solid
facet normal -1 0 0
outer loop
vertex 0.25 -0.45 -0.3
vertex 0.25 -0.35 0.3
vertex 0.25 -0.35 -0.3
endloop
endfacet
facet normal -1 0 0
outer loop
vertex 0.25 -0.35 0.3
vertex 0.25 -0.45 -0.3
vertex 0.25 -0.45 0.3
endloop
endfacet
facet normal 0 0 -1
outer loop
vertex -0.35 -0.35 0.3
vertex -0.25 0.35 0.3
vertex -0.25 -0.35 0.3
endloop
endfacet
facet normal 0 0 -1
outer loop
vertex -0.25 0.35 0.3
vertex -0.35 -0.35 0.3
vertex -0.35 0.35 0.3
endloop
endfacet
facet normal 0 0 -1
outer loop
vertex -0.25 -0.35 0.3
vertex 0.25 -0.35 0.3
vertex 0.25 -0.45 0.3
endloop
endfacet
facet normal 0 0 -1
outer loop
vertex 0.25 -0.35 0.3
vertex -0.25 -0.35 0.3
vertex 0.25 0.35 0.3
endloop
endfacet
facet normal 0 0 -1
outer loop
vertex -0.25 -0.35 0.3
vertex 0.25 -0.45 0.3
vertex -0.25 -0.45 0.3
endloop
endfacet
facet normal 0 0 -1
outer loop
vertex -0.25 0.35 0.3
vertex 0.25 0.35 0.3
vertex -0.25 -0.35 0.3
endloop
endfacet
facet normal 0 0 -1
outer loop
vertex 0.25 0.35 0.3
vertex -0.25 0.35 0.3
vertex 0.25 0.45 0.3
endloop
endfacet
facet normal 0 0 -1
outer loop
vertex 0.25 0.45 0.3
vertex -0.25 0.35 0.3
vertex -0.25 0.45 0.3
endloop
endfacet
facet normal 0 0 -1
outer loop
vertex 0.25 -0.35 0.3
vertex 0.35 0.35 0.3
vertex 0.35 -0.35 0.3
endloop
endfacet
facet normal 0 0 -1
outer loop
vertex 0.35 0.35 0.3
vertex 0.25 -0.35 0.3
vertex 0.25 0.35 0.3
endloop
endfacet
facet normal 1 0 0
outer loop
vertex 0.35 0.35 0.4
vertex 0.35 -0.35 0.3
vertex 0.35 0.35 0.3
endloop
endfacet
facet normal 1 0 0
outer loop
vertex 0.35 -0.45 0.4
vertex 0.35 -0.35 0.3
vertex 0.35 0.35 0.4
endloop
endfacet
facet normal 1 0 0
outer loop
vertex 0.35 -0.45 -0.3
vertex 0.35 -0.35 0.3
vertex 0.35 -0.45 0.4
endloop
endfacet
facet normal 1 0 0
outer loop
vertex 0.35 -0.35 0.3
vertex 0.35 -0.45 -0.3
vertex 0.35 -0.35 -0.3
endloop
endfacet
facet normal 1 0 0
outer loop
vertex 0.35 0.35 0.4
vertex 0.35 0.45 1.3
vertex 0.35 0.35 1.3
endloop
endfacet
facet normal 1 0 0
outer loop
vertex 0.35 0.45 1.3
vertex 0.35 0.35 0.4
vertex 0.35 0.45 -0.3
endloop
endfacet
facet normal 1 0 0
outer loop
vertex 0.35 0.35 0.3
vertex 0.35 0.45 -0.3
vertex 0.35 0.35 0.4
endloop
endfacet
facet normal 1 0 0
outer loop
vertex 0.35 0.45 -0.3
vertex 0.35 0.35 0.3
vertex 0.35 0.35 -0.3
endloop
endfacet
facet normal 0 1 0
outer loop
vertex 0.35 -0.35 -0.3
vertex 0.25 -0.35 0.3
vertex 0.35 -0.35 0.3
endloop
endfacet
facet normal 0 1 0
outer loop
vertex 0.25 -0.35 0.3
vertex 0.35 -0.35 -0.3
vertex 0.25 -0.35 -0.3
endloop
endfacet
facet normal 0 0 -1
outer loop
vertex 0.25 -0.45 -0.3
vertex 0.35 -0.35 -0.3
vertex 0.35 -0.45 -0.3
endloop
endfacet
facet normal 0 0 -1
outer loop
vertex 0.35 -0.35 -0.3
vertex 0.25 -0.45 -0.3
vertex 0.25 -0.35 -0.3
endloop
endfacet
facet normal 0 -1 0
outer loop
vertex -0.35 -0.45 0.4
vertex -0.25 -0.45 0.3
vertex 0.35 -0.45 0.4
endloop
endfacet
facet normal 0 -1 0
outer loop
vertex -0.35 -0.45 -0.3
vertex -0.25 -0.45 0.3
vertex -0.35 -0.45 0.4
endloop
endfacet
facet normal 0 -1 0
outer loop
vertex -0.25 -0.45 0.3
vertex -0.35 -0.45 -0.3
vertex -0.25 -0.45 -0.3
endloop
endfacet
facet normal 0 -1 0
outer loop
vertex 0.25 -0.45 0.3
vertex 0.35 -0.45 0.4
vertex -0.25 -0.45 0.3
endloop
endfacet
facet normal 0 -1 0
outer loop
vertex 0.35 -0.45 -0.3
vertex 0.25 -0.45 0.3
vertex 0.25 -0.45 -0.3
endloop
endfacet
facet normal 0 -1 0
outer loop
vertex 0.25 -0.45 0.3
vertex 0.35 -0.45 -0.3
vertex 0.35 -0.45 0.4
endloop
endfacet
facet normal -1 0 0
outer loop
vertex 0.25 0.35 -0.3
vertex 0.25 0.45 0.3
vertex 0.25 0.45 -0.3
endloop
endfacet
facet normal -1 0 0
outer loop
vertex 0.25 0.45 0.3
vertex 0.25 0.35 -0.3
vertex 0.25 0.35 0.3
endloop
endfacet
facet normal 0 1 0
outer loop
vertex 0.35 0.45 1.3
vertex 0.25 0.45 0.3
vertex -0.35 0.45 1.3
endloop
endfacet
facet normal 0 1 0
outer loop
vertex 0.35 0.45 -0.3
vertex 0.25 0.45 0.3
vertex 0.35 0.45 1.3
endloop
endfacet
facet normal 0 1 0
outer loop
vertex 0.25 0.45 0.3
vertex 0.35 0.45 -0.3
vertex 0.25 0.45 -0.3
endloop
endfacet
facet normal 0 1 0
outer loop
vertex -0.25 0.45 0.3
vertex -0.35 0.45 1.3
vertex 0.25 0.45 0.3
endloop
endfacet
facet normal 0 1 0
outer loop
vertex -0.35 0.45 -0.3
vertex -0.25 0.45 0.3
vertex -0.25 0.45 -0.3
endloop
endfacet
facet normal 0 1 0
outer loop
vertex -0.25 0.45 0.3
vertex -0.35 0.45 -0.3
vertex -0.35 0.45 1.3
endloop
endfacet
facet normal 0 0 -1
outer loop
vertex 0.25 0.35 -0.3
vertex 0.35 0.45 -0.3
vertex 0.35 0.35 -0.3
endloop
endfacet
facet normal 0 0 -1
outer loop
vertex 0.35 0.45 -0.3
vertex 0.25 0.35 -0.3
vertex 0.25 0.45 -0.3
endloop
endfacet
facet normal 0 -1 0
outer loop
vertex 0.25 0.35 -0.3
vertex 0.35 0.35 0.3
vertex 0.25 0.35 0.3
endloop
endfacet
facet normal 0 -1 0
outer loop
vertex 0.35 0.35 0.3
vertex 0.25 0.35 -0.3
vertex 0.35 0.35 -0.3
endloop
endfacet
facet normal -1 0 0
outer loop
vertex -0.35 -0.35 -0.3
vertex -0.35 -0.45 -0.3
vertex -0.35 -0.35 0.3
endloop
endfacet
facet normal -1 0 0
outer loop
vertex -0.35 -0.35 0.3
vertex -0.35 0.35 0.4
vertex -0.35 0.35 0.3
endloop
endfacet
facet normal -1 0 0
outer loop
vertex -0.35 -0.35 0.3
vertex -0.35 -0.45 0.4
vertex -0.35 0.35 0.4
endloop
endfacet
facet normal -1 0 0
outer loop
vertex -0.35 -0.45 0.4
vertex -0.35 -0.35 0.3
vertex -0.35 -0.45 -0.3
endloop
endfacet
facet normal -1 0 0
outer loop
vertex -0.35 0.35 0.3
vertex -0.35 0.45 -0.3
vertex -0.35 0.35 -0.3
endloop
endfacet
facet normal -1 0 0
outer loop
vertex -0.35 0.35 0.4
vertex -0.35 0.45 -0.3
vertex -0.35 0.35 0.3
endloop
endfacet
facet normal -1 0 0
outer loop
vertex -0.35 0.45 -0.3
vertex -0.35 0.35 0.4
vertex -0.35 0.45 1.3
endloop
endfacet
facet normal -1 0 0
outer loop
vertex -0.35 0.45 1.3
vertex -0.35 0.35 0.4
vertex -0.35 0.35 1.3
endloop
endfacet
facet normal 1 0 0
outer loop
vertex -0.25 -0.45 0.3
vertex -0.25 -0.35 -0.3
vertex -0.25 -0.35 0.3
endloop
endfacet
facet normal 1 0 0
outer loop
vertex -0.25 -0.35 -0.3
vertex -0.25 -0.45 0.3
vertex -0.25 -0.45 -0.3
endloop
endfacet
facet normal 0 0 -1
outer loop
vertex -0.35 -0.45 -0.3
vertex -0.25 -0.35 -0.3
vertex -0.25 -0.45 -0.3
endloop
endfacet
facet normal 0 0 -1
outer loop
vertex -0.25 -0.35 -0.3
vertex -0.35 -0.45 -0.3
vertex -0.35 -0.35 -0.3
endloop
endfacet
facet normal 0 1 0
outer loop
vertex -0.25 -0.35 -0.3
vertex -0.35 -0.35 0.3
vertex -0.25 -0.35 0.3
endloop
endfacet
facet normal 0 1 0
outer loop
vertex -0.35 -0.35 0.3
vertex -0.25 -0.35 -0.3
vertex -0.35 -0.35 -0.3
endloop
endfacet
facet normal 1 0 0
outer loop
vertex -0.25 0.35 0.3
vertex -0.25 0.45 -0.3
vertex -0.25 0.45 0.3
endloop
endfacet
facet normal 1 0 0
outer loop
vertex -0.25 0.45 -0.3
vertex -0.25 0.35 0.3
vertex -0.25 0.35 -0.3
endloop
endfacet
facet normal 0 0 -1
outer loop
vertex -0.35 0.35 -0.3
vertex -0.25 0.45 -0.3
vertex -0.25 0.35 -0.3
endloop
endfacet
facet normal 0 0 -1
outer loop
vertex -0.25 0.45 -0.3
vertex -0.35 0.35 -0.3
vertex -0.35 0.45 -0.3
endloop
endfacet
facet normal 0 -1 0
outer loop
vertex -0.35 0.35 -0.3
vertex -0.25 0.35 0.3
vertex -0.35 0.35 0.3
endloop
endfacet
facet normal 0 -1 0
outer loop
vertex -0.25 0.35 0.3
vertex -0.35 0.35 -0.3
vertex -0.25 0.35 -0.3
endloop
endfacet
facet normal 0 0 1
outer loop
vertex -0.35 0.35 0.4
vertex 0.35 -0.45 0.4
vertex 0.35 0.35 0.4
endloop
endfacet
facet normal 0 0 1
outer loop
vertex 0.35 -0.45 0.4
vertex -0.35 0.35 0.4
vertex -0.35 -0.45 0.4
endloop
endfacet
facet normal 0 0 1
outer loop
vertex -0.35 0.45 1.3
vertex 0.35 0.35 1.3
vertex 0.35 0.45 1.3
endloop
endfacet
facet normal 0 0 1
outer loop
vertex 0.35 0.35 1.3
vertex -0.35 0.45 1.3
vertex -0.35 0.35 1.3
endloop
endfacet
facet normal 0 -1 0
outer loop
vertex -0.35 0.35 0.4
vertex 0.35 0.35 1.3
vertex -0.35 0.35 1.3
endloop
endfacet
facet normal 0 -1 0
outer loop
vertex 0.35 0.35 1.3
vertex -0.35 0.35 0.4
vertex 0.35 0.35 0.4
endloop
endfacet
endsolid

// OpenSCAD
union () {
    translate([0.3, -0.4, 0])
    cube([0.1, 0.1, 0.6], center = true);

    translate([0.3, 0.4, 0])
    cube([0.1, 0.1, 0.6], center = true);

    translate([-0.3, -0.4, 0])
    cube([0.1, 0.1, 0.6], center = true);

    translate([-0.3, 0.4, 0])
    cube([0.1, 0.1, 0.6], center = true);

    translate([0, 0, 0.35])
    cube([0.7, 0.9, 0.1], center = true);

    translate([0, 0.4, 0.85])
    cube([0.7, 0.1, 0.9], center = true);
}
